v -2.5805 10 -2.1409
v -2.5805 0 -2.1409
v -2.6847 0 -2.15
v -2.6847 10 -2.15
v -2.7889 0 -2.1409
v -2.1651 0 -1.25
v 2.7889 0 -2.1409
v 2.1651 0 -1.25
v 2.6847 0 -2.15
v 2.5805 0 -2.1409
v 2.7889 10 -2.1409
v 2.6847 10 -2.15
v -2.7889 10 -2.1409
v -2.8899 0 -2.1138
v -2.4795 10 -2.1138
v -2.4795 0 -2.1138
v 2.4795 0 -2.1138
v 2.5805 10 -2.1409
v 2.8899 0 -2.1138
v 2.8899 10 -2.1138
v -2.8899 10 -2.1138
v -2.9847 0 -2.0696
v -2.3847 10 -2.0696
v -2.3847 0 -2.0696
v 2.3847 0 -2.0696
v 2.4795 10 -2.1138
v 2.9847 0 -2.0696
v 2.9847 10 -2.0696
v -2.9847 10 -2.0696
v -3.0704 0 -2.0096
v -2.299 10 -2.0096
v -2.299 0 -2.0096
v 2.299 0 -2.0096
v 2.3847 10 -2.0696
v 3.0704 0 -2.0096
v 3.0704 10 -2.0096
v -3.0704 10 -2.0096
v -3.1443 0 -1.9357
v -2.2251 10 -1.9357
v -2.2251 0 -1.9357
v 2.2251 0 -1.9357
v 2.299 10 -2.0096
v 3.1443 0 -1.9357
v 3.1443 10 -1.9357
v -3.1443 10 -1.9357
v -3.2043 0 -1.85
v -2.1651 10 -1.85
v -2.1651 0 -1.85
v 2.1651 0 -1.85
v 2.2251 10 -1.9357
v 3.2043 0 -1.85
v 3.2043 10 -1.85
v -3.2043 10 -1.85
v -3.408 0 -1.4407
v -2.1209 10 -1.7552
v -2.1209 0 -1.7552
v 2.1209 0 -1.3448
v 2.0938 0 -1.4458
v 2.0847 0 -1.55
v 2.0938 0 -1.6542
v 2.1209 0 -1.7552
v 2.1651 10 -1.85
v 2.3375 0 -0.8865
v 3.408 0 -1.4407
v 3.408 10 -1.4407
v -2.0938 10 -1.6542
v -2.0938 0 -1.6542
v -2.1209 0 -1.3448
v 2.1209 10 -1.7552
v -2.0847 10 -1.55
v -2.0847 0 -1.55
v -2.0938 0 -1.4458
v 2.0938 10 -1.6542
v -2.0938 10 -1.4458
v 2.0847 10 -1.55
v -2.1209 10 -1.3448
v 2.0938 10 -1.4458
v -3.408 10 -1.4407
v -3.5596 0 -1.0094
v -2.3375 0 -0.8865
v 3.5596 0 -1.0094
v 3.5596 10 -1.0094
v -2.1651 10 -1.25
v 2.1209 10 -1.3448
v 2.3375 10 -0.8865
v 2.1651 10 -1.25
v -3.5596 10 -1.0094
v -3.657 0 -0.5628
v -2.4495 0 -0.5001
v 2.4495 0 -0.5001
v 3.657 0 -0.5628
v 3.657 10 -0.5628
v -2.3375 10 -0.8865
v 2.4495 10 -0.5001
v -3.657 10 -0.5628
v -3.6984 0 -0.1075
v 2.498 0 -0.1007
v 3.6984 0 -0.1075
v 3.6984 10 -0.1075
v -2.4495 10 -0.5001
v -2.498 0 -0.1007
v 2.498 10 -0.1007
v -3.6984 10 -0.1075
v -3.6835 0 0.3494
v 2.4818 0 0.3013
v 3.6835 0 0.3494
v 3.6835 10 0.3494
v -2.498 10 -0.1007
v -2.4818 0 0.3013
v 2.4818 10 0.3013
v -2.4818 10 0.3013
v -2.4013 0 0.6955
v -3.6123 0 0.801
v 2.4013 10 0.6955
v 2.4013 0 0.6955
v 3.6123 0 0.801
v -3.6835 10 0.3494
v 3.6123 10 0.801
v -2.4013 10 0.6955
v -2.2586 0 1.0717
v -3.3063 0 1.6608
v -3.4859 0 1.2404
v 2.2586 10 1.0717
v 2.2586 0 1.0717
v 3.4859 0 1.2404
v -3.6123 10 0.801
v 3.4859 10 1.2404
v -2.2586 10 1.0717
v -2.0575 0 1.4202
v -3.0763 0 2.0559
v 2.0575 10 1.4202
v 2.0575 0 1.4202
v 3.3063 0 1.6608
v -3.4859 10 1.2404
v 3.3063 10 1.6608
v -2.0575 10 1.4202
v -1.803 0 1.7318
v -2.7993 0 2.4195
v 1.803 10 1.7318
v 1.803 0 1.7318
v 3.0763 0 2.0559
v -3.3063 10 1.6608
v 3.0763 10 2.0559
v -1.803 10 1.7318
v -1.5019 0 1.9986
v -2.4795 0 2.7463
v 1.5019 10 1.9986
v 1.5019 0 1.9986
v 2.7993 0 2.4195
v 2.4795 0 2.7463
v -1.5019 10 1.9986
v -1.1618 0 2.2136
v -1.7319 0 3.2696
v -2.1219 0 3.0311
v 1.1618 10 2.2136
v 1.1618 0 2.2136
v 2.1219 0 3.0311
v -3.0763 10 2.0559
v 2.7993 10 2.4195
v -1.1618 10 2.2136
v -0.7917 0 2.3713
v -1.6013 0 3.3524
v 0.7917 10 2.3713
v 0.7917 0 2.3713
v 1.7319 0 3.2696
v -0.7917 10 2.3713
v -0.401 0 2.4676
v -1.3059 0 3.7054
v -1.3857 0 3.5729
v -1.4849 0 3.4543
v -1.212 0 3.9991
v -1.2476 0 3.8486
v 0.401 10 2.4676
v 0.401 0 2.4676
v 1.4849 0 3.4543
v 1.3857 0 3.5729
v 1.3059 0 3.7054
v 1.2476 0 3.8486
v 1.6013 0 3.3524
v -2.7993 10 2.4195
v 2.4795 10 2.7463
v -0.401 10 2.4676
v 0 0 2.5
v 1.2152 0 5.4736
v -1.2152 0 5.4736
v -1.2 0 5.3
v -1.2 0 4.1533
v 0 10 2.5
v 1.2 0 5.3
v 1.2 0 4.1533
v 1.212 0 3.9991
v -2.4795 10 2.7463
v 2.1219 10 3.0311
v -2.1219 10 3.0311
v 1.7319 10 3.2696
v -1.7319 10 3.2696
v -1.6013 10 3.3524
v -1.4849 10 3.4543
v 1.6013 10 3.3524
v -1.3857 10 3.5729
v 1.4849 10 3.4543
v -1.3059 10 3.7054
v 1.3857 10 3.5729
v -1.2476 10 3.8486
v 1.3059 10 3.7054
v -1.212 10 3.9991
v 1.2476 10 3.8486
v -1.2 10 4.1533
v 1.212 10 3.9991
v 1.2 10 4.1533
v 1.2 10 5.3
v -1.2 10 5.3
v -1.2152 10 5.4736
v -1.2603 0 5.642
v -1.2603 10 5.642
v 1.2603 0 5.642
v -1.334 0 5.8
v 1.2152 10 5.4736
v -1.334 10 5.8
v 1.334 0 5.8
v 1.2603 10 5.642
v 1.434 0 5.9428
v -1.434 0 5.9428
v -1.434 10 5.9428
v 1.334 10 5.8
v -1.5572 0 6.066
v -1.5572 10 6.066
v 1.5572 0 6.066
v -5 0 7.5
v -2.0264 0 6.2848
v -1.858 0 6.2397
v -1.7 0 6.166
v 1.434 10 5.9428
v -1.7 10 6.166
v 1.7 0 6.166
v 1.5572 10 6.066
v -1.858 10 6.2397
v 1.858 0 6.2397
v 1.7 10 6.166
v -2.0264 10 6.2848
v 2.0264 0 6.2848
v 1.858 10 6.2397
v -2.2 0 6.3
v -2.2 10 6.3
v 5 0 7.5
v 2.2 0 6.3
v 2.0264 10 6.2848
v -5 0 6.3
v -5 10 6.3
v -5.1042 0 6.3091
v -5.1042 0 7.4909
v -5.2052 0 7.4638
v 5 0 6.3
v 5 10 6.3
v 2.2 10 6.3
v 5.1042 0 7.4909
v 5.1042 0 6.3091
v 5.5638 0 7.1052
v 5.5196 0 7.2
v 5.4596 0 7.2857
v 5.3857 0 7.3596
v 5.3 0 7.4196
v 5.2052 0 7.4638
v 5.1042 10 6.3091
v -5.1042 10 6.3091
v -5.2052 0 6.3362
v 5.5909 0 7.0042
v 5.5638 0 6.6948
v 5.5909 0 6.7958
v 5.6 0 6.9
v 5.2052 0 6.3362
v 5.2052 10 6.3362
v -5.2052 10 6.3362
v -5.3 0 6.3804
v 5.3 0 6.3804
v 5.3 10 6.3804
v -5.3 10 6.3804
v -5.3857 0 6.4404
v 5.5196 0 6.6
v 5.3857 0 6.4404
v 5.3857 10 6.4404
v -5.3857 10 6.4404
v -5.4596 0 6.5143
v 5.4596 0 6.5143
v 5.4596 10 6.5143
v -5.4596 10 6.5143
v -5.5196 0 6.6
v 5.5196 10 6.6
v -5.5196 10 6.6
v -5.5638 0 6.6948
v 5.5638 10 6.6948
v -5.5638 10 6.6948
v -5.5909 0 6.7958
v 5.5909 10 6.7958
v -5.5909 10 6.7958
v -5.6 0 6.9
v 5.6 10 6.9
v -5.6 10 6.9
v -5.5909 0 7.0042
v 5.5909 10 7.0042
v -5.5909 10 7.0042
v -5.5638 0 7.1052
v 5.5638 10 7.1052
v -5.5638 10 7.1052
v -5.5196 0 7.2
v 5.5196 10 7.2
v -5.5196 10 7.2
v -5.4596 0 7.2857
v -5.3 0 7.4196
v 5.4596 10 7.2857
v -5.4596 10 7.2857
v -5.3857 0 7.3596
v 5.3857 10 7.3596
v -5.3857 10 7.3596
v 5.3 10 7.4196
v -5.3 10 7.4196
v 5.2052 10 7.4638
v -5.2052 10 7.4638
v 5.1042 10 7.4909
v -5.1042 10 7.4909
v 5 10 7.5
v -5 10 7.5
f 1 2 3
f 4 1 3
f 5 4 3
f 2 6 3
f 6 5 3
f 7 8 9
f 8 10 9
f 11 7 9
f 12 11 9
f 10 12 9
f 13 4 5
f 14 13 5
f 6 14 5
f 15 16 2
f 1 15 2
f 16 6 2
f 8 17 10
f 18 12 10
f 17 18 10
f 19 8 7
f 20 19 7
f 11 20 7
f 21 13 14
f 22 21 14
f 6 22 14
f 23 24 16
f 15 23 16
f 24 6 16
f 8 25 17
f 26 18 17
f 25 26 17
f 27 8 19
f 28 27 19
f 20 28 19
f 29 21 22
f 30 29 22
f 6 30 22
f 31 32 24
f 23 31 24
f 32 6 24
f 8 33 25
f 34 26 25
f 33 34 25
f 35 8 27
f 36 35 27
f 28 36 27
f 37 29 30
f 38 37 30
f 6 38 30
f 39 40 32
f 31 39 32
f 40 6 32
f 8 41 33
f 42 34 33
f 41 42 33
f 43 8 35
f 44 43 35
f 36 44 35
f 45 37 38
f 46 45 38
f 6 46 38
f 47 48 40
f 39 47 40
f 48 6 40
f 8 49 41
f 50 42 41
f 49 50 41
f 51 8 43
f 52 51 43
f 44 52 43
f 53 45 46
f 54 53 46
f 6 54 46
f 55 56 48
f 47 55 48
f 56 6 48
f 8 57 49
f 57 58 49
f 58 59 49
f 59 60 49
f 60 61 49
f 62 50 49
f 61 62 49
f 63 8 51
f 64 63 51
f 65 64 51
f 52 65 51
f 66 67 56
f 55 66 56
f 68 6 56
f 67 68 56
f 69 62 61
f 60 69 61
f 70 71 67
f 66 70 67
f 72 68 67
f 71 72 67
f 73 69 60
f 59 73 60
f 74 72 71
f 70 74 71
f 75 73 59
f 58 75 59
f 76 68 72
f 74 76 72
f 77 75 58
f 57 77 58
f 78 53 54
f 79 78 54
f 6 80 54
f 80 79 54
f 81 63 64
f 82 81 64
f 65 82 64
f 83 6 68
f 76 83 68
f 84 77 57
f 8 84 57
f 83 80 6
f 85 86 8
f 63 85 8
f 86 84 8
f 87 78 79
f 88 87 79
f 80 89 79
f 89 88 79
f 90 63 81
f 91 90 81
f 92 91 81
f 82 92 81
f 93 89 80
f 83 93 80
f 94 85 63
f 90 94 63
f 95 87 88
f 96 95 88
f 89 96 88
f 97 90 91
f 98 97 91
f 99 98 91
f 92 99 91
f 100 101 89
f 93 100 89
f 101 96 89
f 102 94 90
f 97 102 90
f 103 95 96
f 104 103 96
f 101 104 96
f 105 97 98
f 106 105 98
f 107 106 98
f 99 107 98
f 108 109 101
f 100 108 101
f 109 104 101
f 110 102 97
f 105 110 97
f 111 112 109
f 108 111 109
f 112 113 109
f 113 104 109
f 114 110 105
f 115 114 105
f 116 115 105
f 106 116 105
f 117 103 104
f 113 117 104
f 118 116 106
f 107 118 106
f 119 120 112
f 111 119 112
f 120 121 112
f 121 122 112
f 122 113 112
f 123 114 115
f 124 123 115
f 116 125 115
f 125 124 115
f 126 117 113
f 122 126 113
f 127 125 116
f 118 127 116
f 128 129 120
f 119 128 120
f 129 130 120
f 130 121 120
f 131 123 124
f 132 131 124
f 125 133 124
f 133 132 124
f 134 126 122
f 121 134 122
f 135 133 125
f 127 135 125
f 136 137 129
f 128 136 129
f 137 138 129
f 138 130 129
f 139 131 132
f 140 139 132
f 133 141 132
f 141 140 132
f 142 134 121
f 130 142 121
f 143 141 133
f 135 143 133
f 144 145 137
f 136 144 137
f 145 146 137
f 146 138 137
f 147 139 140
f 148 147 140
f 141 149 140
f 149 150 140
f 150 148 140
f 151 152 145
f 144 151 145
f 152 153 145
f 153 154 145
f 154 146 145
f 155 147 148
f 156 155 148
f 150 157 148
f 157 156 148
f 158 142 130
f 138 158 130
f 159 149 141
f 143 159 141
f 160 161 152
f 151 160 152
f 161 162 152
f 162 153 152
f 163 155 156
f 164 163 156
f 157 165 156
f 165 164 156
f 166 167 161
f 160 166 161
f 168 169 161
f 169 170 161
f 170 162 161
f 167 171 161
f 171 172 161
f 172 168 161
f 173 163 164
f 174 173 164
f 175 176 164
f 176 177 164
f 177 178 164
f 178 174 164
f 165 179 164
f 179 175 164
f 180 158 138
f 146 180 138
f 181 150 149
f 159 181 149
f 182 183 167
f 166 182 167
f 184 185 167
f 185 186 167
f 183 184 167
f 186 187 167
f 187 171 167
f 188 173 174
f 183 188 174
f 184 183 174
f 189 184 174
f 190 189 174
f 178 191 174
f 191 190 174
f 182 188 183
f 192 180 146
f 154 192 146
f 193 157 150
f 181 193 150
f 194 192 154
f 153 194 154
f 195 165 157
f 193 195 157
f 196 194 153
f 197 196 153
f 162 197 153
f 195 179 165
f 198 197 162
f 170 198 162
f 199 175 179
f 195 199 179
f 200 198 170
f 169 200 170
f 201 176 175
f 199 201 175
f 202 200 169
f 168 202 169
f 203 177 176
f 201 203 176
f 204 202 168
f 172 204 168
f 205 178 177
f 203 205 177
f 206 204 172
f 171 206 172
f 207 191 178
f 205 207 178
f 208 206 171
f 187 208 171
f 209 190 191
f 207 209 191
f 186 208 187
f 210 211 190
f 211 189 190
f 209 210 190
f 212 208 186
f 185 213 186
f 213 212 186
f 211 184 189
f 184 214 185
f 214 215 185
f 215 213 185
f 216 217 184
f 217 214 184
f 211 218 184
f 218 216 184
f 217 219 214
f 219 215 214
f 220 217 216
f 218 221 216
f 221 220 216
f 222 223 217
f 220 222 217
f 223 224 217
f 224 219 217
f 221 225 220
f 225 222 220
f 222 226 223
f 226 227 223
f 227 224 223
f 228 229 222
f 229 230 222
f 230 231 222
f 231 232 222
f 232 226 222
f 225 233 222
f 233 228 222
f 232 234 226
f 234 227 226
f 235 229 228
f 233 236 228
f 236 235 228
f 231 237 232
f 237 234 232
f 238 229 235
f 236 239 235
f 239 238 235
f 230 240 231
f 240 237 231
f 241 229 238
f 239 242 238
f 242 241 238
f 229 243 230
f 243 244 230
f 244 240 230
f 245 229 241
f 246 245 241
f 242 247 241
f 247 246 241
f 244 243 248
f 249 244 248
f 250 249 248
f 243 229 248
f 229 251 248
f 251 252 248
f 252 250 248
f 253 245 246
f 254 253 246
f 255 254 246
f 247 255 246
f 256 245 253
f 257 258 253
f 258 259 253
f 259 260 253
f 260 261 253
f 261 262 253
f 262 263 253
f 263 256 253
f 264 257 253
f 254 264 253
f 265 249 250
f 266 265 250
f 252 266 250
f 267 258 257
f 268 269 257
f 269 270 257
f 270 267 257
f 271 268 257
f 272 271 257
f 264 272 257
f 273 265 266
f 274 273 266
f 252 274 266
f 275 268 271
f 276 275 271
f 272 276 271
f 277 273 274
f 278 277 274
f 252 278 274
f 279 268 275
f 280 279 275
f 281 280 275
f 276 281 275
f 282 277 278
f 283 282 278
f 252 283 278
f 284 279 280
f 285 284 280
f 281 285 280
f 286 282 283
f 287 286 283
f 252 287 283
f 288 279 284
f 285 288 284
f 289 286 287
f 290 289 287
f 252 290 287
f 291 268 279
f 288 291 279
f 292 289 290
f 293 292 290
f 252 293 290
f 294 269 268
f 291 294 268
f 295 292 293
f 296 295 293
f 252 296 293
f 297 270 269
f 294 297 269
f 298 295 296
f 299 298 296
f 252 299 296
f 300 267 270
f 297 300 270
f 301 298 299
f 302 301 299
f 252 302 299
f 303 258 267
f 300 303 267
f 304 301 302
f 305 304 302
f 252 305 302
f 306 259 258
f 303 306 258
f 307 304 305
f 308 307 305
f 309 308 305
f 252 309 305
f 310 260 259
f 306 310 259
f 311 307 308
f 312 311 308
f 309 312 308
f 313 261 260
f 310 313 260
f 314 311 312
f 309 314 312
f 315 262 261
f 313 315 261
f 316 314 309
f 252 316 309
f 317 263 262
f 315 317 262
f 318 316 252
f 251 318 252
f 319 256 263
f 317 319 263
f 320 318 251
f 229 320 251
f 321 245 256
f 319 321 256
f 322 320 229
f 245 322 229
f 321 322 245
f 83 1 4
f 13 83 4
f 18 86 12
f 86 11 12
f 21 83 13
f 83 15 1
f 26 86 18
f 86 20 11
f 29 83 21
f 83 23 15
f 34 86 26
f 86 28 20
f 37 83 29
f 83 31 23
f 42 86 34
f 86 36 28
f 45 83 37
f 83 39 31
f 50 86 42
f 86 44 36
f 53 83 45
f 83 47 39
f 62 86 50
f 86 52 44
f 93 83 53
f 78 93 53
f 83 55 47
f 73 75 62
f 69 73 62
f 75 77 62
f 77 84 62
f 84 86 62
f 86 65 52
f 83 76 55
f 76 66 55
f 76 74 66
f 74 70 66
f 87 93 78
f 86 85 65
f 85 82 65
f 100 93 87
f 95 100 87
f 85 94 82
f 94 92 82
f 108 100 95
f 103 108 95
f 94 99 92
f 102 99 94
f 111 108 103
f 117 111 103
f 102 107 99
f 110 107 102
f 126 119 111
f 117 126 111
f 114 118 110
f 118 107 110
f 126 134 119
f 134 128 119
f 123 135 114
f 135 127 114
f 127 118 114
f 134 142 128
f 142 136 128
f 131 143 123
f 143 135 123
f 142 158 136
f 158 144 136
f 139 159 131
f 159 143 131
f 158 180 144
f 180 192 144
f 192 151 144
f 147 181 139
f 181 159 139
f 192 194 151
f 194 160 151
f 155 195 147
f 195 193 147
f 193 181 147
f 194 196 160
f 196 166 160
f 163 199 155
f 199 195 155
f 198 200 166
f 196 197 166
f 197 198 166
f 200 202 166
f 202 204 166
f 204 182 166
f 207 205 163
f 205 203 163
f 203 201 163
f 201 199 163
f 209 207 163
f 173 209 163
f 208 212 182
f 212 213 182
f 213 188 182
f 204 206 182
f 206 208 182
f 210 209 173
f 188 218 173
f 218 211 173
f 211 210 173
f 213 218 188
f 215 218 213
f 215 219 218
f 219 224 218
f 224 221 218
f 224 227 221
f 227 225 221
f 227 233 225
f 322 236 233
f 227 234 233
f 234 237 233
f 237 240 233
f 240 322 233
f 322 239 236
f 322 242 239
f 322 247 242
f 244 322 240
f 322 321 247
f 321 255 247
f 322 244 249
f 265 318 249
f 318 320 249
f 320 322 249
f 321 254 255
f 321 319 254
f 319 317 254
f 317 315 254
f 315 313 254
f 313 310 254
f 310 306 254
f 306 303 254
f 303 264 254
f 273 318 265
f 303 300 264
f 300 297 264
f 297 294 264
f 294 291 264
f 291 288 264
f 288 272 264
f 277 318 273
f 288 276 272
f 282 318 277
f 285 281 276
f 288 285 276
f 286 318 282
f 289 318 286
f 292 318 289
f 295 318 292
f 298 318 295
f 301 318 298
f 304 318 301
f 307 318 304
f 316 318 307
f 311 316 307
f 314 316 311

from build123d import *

# Parameters (mm, degrees)
BOSS_EXTRUDE1_DEPTH = 10
FILLET1_R           = 1


with BuildPart() as part:
    # Sketch1 → Boss-Extrude1 (new body)
    with BuildSketch(Plane(origin=(0, 0, 0), x_dir=(1, 0, 0), z_dir=(0, 1, 0))):
        with BuildLine():
            Line((0, -2.5), (0, -7.5))
            Line((0, -7.5), (-5, -7.5))
            ThreePointArc((-5, -7.5), (-5.6, -6.9), (-5, -6.3))
            Line((-5, -6.3), (-1.2, -6.3))
            Line((-1.2, -6.3), (-1.2, -3.5))
            ThreePointArc((-1.2, -3.5), (-3.464834252, -1.298046071), (-3.204293994, 1.85))
            ThreePointArc((-3.204293994, 1.85), (-2.384678752, 2.069615242), (-2.165063509, 1.25))
            ThreePointArc((-2.165063509, 1.25), (-2.165063509, -1.25), (0, -2.5))
        make_face()
    extrude(amount=BOSS_EXTRUDE1_DEPTH)

    # Fillet1
    fillet1_edges = [part.edges().sort_by_distance(p)[0] for p in [
        (-1.2, 5, 6.3),
        (-1.2, 5, 3.5),
    ]]
    fillet(fillet1_edges, radius=FILLET1_R)

    # Mirror1: part across plane


with BuildPart() as part_1:
    add(part.part)
    add(part.part.mirror(Plane(origin=(0, 10, 2.5), x_dir=(0, 0, 1), z_dir=(-1, 0, 0))))


solid = part_1.part
